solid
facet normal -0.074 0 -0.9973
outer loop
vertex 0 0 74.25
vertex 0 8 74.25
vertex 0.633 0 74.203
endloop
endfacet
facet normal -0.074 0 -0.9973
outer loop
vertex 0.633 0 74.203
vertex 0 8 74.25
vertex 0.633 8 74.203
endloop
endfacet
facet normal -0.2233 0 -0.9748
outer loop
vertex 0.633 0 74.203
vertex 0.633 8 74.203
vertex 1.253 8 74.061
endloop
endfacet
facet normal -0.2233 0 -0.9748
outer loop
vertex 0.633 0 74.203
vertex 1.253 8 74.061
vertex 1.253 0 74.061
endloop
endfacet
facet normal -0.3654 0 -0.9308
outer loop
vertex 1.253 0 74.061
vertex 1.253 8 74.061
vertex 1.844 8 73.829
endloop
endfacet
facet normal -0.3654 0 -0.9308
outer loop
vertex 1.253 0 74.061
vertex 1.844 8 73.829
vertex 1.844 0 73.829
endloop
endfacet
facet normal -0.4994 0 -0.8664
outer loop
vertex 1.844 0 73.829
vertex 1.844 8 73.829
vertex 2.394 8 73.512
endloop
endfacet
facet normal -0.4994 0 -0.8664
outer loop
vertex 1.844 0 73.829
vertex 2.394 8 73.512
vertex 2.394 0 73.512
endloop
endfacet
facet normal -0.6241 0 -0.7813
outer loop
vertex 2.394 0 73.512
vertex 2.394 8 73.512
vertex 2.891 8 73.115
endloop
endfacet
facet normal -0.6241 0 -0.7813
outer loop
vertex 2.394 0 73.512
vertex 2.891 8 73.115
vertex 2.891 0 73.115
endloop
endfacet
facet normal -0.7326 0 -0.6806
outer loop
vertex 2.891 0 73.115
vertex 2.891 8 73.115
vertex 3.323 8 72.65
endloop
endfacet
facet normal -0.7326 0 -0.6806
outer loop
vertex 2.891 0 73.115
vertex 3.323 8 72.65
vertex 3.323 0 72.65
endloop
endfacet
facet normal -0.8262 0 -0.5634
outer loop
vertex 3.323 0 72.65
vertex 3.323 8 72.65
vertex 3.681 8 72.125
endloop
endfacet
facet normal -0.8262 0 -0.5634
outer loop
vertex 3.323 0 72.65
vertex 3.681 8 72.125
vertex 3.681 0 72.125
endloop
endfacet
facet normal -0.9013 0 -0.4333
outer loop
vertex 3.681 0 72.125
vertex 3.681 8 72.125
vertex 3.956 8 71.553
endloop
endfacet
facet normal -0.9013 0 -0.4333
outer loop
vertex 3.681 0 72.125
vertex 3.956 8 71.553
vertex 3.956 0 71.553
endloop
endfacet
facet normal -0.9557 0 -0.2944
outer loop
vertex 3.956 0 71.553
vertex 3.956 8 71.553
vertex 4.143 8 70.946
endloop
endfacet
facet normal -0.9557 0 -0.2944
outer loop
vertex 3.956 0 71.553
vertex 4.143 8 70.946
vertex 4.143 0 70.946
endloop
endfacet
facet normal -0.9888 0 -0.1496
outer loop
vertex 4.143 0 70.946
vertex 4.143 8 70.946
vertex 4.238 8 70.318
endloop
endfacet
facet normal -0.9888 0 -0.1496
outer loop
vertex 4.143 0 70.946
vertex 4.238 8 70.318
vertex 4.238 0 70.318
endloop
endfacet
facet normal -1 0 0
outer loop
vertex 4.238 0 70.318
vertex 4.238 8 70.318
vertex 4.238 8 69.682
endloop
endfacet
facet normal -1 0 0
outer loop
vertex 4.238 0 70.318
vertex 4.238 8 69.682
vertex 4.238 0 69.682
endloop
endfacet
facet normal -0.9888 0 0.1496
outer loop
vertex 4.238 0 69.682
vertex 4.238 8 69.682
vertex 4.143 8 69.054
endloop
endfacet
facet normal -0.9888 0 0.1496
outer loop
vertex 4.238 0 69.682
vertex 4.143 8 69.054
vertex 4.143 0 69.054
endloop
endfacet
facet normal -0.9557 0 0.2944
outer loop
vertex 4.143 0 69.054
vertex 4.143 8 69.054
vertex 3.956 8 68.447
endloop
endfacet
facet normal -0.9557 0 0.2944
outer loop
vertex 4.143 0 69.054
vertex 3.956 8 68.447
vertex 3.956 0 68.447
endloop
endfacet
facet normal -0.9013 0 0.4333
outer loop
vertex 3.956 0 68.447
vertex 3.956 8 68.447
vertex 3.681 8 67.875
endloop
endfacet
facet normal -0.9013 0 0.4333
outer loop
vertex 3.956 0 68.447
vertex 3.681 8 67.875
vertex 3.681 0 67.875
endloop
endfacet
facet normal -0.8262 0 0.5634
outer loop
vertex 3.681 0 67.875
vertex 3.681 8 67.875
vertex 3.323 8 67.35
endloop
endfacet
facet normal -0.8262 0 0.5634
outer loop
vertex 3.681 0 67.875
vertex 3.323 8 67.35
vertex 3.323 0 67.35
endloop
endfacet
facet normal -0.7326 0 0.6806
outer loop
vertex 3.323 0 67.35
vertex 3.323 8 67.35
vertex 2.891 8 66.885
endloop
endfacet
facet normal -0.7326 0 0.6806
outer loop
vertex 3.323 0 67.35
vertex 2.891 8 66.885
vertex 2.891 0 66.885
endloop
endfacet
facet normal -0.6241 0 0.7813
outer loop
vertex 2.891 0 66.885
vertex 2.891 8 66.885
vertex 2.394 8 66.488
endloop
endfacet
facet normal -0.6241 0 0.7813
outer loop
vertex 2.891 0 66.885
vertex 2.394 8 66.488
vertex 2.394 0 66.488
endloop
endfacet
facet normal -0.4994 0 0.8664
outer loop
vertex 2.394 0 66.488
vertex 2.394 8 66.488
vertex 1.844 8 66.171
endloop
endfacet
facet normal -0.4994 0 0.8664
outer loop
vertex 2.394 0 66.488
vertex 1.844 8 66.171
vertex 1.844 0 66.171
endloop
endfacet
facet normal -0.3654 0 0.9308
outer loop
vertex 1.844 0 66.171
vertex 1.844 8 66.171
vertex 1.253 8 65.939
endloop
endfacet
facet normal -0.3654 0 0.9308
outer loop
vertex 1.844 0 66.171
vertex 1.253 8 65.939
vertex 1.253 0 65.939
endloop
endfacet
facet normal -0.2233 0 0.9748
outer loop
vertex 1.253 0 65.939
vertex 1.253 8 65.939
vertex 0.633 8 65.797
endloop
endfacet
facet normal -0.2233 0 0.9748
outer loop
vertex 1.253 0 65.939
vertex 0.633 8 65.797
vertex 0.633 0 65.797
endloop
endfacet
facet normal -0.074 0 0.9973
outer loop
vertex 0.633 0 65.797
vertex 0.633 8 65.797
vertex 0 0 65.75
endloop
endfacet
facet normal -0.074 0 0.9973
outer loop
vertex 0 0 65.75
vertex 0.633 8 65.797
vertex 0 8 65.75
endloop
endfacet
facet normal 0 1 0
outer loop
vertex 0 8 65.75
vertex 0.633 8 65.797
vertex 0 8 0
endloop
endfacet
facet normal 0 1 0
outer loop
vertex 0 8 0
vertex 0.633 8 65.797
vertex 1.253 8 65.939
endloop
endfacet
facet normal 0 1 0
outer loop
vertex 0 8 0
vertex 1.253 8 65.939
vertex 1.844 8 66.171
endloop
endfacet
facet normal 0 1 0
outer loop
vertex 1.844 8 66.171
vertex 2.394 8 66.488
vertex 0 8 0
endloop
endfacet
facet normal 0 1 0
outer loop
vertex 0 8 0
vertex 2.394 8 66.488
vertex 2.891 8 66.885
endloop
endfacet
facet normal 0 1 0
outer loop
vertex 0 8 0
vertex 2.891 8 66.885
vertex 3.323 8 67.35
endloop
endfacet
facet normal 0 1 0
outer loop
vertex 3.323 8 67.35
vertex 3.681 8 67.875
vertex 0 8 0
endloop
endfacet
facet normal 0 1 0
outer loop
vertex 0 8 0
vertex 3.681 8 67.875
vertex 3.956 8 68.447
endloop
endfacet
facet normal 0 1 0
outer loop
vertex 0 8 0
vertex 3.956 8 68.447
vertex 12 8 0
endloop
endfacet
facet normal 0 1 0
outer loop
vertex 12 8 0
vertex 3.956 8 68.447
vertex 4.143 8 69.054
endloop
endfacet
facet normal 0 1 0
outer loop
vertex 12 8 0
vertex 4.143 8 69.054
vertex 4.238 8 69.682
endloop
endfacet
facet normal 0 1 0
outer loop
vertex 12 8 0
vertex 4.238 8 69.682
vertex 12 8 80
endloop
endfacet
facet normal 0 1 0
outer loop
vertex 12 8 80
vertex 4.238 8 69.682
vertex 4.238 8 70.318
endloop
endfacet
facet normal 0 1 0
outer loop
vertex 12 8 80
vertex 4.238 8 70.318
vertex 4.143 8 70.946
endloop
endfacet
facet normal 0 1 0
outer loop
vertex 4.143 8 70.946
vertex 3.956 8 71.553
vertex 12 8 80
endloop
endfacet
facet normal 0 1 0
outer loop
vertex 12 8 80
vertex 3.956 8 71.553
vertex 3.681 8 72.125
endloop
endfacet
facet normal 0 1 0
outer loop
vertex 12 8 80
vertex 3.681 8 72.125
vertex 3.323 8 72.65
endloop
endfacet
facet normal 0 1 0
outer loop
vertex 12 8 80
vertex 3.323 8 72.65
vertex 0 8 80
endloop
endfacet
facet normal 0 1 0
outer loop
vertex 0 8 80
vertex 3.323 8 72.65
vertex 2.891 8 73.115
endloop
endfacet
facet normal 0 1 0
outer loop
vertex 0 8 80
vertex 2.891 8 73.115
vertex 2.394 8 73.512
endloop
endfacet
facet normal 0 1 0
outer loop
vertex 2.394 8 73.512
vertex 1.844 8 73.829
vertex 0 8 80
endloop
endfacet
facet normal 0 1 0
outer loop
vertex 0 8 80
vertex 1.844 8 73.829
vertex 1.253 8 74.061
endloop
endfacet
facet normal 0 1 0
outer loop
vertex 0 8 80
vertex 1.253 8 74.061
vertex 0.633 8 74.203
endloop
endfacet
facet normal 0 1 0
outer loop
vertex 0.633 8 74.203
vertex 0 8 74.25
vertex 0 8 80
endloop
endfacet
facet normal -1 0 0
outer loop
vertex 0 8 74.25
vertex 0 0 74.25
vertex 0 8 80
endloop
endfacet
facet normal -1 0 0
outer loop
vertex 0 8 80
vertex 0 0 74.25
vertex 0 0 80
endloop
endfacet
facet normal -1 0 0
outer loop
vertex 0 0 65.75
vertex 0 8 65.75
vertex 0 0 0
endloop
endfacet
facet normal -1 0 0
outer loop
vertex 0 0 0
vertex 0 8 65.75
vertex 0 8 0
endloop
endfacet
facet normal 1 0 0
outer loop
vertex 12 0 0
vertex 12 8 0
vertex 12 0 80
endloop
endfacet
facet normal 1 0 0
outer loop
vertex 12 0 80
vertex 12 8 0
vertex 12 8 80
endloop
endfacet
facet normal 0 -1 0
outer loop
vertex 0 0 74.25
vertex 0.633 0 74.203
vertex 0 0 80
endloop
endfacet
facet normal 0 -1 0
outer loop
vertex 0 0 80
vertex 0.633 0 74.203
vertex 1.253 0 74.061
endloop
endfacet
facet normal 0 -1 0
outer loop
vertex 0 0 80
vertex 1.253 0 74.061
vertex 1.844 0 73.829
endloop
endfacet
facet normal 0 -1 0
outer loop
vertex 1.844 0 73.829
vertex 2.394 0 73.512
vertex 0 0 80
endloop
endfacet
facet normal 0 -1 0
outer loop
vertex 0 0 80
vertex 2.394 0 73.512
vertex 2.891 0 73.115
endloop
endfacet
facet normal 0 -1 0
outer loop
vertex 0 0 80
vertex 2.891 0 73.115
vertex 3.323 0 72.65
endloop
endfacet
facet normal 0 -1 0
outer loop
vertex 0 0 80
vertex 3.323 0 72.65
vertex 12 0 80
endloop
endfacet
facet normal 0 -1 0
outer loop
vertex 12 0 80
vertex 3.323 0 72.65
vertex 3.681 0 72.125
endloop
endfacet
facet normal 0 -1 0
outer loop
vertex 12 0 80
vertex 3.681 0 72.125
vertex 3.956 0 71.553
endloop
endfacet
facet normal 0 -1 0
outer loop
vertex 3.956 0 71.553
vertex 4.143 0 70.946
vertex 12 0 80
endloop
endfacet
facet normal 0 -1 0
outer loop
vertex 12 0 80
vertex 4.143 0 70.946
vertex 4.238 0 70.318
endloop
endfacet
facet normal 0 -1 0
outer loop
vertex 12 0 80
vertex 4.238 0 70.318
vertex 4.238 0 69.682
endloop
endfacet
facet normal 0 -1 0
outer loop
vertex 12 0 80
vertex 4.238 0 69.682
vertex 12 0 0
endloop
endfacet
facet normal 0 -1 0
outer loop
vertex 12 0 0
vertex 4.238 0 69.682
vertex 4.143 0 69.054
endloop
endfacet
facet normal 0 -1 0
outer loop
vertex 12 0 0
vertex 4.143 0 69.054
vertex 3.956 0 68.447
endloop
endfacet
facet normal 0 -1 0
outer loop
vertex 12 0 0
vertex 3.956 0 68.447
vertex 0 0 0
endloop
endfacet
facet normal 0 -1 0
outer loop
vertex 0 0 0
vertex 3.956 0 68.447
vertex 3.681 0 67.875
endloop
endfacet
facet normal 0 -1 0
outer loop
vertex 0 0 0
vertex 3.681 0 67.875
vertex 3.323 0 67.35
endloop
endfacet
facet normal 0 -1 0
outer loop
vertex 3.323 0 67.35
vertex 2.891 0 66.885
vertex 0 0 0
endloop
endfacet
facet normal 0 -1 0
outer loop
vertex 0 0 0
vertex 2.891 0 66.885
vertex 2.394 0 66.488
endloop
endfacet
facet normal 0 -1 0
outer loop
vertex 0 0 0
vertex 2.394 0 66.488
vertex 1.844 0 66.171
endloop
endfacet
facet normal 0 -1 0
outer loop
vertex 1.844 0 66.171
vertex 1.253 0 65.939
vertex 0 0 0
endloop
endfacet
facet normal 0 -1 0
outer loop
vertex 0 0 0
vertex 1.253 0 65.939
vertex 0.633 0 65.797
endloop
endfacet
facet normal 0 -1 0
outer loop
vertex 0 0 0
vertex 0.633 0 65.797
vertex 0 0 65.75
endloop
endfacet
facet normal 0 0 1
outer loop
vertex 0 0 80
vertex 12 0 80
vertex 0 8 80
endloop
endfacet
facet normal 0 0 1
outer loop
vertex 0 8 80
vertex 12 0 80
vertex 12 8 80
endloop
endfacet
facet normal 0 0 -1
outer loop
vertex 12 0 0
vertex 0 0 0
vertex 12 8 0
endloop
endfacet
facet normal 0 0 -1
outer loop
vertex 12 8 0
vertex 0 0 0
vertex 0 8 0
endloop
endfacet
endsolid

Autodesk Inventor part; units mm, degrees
ref_plane "YZ Plane" through (0, 0, 0) normal (1, 0, 0) x (0, 1, 0)
ref_plane "XZ Plane" through (0, 0, 0) normal (0, 1, 0) x (-1, 0, 0)
ref_plane "XY Plane" through (0, 0, 0) normal (0, 0, 1) x (1, 0, 0)
sketch "Skizze1" plane through (0, 0, 0) normal (0, 0, 1) x (1, 0, 0)
  line L0 (0, 0) -> (12, 0)
  line L1 (12, 0) -> (12, 8)
  line L2 (12, 8) -> (0, 8)
  line L3 (0, 8) -> (0, 0)
extrude "Extrusion1" add sketch "Skizze1" along normal blind 80
sketch "Skizze2" plane through (0, 0, 0) normal (0, 1, 0) x (-1, 0, 0)
  circle A0 centre (0, 70) radius 4.25
extrude "Extrusion2" cut sketch "Skizze2" along normal mid plane 20
properties part number "Stuetze"
